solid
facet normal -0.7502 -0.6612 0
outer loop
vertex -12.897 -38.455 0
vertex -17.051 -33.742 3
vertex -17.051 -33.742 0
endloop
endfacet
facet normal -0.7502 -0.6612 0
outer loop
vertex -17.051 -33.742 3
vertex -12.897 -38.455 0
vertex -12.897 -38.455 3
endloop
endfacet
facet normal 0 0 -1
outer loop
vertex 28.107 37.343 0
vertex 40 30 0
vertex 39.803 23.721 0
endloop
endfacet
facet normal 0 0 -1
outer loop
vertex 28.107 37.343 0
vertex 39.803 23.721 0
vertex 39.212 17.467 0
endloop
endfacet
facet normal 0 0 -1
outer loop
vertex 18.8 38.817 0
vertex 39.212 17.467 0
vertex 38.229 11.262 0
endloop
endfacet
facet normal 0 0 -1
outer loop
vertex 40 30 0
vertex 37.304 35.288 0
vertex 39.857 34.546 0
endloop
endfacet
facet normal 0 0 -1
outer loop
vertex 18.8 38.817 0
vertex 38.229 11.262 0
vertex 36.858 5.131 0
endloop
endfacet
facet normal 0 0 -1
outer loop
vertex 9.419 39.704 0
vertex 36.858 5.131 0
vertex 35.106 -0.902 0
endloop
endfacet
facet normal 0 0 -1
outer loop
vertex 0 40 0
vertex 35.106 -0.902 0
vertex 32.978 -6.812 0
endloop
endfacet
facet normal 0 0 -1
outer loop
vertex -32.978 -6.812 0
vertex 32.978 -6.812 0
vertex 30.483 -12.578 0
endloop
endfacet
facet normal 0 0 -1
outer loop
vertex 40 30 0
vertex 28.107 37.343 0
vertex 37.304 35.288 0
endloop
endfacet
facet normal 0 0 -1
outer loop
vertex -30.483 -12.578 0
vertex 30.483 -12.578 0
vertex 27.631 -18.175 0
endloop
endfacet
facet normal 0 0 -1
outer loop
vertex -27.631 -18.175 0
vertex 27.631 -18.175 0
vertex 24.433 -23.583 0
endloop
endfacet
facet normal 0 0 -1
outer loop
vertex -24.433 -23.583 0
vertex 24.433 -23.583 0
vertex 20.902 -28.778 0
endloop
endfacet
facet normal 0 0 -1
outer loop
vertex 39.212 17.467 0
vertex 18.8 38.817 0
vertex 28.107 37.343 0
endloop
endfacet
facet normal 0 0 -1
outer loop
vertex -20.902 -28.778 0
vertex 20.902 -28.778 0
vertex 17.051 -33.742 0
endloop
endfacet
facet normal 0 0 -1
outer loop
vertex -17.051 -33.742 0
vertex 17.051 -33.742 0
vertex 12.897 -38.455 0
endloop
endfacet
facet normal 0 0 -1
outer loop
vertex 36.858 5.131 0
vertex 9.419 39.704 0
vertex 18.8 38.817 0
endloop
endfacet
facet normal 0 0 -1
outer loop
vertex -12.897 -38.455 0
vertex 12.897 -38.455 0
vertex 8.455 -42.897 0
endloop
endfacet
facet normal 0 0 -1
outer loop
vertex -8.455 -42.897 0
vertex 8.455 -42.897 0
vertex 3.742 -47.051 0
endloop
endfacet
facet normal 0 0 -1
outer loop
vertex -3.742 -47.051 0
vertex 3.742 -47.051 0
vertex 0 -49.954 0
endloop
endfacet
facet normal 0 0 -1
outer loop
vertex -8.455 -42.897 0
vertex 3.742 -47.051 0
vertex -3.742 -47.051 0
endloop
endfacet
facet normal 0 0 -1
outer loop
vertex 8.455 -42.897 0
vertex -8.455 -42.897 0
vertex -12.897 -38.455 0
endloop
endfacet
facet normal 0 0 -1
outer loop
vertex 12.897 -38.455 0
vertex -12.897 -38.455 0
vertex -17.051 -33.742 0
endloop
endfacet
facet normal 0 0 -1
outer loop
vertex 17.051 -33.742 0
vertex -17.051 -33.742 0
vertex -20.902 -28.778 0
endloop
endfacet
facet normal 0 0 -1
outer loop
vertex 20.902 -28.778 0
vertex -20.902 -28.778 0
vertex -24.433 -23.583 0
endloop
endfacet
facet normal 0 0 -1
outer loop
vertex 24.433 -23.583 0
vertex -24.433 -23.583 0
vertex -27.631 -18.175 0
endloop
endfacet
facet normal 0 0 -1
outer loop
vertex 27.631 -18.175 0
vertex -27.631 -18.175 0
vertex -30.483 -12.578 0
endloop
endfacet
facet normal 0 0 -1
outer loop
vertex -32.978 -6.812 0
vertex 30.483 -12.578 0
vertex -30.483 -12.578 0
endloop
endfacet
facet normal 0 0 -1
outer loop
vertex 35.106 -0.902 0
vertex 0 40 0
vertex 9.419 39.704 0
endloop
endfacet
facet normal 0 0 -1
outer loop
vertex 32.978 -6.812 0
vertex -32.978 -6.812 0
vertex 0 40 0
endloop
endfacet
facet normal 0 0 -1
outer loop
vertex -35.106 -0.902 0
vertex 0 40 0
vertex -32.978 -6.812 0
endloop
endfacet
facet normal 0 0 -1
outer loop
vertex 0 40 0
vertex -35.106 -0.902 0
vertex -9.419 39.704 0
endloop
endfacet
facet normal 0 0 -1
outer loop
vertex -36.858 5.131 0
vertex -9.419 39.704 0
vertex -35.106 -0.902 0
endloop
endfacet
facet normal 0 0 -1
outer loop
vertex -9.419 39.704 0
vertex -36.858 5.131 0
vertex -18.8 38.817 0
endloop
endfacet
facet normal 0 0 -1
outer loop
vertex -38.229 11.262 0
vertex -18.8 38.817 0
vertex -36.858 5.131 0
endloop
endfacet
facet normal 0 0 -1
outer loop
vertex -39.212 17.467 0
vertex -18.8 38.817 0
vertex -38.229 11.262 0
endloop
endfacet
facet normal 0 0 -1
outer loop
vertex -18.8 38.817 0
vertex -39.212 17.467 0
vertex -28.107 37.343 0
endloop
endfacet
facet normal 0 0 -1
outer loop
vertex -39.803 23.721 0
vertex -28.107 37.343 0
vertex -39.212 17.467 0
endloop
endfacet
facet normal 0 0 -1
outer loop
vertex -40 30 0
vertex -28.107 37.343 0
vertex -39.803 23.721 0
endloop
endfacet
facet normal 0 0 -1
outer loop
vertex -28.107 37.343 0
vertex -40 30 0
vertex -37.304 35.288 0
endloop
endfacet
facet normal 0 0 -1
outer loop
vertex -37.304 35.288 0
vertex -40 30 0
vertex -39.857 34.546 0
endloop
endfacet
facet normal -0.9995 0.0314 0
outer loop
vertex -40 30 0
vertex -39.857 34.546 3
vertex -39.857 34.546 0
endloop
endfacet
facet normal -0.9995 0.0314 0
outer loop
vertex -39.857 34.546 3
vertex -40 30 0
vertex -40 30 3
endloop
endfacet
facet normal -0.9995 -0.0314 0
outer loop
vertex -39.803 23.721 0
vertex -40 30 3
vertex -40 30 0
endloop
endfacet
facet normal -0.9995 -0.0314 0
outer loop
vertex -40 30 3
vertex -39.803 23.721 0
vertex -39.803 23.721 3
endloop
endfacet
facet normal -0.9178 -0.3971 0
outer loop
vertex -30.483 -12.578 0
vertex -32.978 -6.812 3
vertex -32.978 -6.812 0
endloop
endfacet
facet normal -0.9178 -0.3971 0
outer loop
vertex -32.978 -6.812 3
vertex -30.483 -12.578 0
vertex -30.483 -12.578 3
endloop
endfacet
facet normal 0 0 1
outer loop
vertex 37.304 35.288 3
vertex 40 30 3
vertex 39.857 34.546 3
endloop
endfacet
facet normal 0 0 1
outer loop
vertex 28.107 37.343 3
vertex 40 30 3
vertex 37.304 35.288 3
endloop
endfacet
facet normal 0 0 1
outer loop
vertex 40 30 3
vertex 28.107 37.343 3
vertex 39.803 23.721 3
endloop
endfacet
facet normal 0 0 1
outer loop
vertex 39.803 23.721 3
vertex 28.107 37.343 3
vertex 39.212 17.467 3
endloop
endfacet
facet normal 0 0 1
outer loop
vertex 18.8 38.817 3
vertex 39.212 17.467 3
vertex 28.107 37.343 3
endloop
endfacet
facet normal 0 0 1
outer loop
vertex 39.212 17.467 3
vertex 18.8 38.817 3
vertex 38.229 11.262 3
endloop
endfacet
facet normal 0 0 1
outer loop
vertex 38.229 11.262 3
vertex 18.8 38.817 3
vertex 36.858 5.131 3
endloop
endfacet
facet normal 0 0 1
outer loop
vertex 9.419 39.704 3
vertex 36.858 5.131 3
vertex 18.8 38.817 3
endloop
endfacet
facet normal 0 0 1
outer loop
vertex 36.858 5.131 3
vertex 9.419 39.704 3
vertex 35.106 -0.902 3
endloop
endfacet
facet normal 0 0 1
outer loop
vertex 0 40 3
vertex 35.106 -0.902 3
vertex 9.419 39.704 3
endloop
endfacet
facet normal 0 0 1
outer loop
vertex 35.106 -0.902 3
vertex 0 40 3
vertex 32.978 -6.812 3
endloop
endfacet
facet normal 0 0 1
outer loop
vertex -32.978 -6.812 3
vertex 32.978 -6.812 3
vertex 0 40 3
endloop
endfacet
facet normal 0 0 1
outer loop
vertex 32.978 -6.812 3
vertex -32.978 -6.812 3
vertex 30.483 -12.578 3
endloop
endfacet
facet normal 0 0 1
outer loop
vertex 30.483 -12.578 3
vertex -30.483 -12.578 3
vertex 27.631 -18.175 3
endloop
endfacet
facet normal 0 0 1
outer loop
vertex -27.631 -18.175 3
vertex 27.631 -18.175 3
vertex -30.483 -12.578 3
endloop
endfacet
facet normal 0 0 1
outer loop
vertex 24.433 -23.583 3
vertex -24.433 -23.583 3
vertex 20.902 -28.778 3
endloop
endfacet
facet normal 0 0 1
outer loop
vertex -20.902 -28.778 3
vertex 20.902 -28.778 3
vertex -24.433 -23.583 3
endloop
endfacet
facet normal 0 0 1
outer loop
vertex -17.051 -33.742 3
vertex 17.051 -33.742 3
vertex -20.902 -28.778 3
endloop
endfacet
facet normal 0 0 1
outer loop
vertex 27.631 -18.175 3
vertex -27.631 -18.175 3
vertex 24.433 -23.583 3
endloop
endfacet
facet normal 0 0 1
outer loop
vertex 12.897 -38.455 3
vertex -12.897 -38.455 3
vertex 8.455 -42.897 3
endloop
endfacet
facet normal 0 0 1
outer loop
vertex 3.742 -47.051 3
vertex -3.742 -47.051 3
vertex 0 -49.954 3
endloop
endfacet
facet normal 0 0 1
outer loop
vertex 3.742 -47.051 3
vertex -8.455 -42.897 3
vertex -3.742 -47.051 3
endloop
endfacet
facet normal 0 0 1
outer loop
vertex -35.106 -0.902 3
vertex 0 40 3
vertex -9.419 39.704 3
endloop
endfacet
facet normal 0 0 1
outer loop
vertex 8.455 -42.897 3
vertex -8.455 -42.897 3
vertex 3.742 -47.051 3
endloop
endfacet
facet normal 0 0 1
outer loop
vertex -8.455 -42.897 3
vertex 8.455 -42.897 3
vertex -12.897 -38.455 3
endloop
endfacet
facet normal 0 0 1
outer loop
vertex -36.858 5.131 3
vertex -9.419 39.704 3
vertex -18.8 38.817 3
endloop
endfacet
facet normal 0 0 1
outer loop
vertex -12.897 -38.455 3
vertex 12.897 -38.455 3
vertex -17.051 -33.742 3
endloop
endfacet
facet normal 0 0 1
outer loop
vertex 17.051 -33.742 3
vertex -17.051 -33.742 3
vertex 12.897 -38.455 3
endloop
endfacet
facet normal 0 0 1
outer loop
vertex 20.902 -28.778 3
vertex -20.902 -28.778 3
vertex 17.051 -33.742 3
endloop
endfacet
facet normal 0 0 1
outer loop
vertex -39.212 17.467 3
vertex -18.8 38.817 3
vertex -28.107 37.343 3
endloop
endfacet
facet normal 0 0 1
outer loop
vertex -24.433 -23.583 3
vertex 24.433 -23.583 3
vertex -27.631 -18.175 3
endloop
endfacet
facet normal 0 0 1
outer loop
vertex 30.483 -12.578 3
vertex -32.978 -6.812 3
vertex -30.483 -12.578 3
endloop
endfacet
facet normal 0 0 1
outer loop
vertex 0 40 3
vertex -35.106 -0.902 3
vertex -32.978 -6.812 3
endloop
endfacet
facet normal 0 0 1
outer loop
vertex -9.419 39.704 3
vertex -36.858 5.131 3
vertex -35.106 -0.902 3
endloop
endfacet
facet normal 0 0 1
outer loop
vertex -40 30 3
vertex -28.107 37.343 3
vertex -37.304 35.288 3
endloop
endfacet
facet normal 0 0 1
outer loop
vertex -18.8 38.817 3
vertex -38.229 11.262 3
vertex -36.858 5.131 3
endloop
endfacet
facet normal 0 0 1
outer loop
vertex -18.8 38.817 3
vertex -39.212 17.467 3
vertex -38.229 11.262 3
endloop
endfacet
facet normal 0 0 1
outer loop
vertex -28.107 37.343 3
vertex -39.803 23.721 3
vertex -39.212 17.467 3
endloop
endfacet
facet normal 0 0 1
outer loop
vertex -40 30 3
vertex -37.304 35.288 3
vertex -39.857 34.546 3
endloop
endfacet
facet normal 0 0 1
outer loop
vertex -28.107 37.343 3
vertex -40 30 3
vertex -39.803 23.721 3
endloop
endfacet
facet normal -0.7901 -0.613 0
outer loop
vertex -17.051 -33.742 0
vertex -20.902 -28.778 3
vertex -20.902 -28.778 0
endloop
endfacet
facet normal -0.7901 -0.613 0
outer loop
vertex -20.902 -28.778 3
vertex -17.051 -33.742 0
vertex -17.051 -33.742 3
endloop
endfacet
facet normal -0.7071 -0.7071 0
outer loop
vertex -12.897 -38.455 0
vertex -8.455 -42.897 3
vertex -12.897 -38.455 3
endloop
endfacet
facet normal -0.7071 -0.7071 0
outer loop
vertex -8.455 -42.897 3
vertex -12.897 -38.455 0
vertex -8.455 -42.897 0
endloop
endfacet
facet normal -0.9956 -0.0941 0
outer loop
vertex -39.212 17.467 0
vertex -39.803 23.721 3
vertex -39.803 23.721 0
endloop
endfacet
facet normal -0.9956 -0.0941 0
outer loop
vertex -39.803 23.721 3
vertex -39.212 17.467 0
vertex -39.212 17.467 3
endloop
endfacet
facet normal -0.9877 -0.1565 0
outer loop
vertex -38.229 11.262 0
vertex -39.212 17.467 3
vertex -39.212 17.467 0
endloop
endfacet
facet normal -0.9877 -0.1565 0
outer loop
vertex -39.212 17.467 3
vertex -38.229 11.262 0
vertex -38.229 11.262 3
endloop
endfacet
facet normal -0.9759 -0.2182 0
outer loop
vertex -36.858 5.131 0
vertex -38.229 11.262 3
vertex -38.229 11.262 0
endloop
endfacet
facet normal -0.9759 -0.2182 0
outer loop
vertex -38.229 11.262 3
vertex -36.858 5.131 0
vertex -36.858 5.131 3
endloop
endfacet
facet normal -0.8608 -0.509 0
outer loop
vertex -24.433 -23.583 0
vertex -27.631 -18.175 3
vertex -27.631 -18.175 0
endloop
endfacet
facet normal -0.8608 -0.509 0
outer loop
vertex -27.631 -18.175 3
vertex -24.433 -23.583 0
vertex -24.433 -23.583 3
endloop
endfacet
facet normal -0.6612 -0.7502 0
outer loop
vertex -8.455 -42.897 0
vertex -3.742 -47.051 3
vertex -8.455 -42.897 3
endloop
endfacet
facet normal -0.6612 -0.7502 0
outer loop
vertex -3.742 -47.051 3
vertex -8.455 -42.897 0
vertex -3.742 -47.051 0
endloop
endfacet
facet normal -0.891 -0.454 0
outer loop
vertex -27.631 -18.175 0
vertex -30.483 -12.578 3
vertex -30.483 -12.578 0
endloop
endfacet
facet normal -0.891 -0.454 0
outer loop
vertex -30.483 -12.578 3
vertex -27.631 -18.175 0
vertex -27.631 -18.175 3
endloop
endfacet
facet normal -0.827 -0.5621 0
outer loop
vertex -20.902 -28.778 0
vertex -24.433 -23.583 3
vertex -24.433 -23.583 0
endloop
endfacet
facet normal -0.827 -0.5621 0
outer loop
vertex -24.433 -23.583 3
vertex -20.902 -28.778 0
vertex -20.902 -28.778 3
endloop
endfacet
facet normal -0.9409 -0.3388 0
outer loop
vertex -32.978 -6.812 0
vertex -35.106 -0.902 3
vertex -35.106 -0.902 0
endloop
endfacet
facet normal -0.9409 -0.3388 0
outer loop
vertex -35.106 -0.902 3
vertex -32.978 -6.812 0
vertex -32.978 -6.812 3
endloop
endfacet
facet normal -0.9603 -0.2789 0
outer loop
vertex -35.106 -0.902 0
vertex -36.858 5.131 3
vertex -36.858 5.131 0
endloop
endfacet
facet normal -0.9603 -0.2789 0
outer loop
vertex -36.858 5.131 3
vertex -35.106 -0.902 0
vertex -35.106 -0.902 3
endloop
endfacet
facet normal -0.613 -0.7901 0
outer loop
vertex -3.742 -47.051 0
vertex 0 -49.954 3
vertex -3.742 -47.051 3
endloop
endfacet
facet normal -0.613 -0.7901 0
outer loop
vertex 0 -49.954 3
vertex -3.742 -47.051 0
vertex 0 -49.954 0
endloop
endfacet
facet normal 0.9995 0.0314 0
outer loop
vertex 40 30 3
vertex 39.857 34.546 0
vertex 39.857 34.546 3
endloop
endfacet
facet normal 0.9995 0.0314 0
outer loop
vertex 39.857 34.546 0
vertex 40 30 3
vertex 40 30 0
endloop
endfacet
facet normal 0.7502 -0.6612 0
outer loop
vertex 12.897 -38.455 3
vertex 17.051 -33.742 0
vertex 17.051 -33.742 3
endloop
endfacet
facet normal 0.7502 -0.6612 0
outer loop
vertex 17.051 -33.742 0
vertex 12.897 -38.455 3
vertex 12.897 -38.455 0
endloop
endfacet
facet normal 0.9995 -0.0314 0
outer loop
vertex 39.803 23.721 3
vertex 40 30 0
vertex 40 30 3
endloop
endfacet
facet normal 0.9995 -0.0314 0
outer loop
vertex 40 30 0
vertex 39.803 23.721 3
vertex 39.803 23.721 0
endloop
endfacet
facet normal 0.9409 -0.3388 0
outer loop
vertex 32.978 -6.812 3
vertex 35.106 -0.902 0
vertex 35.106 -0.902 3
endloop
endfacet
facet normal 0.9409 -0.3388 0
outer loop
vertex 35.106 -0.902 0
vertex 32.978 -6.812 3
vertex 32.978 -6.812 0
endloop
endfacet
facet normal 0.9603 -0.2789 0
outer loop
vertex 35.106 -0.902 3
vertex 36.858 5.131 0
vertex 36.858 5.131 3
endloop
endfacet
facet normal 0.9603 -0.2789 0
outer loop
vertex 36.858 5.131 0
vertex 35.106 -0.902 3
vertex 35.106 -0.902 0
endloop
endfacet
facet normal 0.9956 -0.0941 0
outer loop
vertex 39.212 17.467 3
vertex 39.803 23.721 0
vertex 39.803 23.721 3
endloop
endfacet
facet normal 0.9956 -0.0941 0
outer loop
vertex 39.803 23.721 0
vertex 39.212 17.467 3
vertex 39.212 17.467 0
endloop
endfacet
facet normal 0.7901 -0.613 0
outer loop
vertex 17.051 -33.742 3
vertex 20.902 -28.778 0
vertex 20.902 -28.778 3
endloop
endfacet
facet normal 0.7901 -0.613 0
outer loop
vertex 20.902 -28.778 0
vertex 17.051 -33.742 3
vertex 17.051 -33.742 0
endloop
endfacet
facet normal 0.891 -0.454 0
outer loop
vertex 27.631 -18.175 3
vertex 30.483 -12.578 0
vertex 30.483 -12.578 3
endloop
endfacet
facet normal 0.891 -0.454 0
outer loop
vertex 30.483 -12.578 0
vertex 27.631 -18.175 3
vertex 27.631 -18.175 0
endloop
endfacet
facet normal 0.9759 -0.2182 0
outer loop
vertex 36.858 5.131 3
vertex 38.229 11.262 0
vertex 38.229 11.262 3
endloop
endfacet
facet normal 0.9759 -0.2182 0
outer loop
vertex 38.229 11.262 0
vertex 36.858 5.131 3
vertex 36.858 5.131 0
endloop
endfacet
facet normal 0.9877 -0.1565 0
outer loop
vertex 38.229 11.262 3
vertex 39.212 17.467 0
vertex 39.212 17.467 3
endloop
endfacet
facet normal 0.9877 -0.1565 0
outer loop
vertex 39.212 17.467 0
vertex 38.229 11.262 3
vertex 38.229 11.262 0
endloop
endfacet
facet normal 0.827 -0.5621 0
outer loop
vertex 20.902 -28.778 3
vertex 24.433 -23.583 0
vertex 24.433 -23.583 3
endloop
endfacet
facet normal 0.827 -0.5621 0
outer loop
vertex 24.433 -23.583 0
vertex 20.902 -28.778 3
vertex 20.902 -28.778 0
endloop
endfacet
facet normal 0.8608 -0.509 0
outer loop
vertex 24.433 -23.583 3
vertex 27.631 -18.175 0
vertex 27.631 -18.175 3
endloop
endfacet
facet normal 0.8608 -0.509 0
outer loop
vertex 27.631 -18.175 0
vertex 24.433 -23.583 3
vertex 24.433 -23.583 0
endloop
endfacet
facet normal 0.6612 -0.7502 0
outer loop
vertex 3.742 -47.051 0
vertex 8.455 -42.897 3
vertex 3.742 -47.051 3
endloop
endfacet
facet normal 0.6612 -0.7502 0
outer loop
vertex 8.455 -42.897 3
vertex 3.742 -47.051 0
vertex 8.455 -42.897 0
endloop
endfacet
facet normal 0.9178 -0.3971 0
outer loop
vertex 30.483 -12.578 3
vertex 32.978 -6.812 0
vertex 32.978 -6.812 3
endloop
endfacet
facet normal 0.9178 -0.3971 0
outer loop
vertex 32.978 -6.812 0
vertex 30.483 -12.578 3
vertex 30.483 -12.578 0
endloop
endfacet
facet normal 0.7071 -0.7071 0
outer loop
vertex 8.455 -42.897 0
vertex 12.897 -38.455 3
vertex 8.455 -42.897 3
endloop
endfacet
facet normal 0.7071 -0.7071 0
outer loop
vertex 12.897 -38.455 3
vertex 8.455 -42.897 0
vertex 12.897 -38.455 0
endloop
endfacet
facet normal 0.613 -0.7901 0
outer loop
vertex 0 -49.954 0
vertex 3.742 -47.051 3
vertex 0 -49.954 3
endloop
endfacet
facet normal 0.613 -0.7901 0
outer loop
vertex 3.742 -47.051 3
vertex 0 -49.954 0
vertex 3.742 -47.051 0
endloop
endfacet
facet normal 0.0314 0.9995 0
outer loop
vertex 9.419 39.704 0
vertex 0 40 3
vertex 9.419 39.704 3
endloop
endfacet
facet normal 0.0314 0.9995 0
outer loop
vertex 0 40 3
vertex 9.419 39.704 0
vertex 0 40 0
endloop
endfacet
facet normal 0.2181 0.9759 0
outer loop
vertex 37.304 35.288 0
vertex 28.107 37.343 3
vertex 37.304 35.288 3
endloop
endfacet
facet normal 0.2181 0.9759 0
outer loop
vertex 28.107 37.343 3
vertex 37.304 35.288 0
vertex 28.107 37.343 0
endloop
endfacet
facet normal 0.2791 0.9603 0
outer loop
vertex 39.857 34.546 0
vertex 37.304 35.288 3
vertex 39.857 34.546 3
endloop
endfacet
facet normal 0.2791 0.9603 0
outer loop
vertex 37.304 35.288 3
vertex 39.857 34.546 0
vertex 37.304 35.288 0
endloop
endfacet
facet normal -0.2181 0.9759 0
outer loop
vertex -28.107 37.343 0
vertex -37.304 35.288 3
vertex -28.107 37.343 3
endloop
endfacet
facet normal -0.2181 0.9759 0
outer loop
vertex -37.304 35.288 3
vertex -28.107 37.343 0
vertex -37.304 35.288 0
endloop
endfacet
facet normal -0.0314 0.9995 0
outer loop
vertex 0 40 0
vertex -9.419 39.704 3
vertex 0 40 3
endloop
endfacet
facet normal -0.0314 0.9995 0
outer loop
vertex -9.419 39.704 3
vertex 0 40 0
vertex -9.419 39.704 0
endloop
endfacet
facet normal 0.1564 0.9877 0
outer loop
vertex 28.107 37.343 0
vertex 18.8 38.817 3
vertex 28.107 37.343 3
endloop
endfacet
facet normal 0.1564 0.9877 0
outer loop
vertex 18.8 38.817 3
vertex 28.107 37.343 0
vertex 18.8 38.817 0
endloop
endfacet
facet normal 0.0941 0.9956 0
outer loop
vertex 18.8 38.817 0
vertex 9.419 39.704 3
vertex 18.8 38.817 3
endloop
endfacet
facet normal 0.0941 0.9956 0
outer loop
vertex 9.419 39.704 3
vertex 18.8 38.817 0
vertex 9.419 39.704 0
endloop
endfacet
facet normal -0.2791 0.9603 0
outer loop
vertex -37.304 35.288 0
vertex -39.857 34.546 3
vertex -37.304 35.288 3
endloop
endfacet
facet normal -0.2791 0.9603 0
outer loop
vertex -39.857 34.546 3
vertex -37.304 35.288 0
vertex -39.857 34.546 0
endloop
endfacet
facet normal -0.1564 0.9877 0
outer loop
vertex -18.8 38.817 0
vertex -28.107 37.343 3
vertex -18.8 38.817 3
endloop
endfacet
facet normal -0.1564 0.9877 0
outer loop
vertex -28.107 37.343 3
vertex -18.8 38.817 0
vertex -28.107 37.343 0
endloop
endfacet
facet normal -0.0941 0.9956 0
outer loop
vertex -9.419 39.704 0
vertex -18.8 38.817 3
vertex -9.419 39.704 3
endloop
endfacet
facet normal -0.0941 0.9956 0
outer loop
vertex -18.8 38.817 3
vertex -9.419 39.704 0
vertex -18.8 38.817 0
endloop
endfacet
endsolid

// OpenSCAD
$fn = 100;

intersection() {
	translate([60, 30, 0]) cylinder(r=100, h=3);
	translate([-60, 30, 0]) cylinder(r=100, h=3);
	translate([0, -110, 0]) cylinder(r=150, h=3);
}
